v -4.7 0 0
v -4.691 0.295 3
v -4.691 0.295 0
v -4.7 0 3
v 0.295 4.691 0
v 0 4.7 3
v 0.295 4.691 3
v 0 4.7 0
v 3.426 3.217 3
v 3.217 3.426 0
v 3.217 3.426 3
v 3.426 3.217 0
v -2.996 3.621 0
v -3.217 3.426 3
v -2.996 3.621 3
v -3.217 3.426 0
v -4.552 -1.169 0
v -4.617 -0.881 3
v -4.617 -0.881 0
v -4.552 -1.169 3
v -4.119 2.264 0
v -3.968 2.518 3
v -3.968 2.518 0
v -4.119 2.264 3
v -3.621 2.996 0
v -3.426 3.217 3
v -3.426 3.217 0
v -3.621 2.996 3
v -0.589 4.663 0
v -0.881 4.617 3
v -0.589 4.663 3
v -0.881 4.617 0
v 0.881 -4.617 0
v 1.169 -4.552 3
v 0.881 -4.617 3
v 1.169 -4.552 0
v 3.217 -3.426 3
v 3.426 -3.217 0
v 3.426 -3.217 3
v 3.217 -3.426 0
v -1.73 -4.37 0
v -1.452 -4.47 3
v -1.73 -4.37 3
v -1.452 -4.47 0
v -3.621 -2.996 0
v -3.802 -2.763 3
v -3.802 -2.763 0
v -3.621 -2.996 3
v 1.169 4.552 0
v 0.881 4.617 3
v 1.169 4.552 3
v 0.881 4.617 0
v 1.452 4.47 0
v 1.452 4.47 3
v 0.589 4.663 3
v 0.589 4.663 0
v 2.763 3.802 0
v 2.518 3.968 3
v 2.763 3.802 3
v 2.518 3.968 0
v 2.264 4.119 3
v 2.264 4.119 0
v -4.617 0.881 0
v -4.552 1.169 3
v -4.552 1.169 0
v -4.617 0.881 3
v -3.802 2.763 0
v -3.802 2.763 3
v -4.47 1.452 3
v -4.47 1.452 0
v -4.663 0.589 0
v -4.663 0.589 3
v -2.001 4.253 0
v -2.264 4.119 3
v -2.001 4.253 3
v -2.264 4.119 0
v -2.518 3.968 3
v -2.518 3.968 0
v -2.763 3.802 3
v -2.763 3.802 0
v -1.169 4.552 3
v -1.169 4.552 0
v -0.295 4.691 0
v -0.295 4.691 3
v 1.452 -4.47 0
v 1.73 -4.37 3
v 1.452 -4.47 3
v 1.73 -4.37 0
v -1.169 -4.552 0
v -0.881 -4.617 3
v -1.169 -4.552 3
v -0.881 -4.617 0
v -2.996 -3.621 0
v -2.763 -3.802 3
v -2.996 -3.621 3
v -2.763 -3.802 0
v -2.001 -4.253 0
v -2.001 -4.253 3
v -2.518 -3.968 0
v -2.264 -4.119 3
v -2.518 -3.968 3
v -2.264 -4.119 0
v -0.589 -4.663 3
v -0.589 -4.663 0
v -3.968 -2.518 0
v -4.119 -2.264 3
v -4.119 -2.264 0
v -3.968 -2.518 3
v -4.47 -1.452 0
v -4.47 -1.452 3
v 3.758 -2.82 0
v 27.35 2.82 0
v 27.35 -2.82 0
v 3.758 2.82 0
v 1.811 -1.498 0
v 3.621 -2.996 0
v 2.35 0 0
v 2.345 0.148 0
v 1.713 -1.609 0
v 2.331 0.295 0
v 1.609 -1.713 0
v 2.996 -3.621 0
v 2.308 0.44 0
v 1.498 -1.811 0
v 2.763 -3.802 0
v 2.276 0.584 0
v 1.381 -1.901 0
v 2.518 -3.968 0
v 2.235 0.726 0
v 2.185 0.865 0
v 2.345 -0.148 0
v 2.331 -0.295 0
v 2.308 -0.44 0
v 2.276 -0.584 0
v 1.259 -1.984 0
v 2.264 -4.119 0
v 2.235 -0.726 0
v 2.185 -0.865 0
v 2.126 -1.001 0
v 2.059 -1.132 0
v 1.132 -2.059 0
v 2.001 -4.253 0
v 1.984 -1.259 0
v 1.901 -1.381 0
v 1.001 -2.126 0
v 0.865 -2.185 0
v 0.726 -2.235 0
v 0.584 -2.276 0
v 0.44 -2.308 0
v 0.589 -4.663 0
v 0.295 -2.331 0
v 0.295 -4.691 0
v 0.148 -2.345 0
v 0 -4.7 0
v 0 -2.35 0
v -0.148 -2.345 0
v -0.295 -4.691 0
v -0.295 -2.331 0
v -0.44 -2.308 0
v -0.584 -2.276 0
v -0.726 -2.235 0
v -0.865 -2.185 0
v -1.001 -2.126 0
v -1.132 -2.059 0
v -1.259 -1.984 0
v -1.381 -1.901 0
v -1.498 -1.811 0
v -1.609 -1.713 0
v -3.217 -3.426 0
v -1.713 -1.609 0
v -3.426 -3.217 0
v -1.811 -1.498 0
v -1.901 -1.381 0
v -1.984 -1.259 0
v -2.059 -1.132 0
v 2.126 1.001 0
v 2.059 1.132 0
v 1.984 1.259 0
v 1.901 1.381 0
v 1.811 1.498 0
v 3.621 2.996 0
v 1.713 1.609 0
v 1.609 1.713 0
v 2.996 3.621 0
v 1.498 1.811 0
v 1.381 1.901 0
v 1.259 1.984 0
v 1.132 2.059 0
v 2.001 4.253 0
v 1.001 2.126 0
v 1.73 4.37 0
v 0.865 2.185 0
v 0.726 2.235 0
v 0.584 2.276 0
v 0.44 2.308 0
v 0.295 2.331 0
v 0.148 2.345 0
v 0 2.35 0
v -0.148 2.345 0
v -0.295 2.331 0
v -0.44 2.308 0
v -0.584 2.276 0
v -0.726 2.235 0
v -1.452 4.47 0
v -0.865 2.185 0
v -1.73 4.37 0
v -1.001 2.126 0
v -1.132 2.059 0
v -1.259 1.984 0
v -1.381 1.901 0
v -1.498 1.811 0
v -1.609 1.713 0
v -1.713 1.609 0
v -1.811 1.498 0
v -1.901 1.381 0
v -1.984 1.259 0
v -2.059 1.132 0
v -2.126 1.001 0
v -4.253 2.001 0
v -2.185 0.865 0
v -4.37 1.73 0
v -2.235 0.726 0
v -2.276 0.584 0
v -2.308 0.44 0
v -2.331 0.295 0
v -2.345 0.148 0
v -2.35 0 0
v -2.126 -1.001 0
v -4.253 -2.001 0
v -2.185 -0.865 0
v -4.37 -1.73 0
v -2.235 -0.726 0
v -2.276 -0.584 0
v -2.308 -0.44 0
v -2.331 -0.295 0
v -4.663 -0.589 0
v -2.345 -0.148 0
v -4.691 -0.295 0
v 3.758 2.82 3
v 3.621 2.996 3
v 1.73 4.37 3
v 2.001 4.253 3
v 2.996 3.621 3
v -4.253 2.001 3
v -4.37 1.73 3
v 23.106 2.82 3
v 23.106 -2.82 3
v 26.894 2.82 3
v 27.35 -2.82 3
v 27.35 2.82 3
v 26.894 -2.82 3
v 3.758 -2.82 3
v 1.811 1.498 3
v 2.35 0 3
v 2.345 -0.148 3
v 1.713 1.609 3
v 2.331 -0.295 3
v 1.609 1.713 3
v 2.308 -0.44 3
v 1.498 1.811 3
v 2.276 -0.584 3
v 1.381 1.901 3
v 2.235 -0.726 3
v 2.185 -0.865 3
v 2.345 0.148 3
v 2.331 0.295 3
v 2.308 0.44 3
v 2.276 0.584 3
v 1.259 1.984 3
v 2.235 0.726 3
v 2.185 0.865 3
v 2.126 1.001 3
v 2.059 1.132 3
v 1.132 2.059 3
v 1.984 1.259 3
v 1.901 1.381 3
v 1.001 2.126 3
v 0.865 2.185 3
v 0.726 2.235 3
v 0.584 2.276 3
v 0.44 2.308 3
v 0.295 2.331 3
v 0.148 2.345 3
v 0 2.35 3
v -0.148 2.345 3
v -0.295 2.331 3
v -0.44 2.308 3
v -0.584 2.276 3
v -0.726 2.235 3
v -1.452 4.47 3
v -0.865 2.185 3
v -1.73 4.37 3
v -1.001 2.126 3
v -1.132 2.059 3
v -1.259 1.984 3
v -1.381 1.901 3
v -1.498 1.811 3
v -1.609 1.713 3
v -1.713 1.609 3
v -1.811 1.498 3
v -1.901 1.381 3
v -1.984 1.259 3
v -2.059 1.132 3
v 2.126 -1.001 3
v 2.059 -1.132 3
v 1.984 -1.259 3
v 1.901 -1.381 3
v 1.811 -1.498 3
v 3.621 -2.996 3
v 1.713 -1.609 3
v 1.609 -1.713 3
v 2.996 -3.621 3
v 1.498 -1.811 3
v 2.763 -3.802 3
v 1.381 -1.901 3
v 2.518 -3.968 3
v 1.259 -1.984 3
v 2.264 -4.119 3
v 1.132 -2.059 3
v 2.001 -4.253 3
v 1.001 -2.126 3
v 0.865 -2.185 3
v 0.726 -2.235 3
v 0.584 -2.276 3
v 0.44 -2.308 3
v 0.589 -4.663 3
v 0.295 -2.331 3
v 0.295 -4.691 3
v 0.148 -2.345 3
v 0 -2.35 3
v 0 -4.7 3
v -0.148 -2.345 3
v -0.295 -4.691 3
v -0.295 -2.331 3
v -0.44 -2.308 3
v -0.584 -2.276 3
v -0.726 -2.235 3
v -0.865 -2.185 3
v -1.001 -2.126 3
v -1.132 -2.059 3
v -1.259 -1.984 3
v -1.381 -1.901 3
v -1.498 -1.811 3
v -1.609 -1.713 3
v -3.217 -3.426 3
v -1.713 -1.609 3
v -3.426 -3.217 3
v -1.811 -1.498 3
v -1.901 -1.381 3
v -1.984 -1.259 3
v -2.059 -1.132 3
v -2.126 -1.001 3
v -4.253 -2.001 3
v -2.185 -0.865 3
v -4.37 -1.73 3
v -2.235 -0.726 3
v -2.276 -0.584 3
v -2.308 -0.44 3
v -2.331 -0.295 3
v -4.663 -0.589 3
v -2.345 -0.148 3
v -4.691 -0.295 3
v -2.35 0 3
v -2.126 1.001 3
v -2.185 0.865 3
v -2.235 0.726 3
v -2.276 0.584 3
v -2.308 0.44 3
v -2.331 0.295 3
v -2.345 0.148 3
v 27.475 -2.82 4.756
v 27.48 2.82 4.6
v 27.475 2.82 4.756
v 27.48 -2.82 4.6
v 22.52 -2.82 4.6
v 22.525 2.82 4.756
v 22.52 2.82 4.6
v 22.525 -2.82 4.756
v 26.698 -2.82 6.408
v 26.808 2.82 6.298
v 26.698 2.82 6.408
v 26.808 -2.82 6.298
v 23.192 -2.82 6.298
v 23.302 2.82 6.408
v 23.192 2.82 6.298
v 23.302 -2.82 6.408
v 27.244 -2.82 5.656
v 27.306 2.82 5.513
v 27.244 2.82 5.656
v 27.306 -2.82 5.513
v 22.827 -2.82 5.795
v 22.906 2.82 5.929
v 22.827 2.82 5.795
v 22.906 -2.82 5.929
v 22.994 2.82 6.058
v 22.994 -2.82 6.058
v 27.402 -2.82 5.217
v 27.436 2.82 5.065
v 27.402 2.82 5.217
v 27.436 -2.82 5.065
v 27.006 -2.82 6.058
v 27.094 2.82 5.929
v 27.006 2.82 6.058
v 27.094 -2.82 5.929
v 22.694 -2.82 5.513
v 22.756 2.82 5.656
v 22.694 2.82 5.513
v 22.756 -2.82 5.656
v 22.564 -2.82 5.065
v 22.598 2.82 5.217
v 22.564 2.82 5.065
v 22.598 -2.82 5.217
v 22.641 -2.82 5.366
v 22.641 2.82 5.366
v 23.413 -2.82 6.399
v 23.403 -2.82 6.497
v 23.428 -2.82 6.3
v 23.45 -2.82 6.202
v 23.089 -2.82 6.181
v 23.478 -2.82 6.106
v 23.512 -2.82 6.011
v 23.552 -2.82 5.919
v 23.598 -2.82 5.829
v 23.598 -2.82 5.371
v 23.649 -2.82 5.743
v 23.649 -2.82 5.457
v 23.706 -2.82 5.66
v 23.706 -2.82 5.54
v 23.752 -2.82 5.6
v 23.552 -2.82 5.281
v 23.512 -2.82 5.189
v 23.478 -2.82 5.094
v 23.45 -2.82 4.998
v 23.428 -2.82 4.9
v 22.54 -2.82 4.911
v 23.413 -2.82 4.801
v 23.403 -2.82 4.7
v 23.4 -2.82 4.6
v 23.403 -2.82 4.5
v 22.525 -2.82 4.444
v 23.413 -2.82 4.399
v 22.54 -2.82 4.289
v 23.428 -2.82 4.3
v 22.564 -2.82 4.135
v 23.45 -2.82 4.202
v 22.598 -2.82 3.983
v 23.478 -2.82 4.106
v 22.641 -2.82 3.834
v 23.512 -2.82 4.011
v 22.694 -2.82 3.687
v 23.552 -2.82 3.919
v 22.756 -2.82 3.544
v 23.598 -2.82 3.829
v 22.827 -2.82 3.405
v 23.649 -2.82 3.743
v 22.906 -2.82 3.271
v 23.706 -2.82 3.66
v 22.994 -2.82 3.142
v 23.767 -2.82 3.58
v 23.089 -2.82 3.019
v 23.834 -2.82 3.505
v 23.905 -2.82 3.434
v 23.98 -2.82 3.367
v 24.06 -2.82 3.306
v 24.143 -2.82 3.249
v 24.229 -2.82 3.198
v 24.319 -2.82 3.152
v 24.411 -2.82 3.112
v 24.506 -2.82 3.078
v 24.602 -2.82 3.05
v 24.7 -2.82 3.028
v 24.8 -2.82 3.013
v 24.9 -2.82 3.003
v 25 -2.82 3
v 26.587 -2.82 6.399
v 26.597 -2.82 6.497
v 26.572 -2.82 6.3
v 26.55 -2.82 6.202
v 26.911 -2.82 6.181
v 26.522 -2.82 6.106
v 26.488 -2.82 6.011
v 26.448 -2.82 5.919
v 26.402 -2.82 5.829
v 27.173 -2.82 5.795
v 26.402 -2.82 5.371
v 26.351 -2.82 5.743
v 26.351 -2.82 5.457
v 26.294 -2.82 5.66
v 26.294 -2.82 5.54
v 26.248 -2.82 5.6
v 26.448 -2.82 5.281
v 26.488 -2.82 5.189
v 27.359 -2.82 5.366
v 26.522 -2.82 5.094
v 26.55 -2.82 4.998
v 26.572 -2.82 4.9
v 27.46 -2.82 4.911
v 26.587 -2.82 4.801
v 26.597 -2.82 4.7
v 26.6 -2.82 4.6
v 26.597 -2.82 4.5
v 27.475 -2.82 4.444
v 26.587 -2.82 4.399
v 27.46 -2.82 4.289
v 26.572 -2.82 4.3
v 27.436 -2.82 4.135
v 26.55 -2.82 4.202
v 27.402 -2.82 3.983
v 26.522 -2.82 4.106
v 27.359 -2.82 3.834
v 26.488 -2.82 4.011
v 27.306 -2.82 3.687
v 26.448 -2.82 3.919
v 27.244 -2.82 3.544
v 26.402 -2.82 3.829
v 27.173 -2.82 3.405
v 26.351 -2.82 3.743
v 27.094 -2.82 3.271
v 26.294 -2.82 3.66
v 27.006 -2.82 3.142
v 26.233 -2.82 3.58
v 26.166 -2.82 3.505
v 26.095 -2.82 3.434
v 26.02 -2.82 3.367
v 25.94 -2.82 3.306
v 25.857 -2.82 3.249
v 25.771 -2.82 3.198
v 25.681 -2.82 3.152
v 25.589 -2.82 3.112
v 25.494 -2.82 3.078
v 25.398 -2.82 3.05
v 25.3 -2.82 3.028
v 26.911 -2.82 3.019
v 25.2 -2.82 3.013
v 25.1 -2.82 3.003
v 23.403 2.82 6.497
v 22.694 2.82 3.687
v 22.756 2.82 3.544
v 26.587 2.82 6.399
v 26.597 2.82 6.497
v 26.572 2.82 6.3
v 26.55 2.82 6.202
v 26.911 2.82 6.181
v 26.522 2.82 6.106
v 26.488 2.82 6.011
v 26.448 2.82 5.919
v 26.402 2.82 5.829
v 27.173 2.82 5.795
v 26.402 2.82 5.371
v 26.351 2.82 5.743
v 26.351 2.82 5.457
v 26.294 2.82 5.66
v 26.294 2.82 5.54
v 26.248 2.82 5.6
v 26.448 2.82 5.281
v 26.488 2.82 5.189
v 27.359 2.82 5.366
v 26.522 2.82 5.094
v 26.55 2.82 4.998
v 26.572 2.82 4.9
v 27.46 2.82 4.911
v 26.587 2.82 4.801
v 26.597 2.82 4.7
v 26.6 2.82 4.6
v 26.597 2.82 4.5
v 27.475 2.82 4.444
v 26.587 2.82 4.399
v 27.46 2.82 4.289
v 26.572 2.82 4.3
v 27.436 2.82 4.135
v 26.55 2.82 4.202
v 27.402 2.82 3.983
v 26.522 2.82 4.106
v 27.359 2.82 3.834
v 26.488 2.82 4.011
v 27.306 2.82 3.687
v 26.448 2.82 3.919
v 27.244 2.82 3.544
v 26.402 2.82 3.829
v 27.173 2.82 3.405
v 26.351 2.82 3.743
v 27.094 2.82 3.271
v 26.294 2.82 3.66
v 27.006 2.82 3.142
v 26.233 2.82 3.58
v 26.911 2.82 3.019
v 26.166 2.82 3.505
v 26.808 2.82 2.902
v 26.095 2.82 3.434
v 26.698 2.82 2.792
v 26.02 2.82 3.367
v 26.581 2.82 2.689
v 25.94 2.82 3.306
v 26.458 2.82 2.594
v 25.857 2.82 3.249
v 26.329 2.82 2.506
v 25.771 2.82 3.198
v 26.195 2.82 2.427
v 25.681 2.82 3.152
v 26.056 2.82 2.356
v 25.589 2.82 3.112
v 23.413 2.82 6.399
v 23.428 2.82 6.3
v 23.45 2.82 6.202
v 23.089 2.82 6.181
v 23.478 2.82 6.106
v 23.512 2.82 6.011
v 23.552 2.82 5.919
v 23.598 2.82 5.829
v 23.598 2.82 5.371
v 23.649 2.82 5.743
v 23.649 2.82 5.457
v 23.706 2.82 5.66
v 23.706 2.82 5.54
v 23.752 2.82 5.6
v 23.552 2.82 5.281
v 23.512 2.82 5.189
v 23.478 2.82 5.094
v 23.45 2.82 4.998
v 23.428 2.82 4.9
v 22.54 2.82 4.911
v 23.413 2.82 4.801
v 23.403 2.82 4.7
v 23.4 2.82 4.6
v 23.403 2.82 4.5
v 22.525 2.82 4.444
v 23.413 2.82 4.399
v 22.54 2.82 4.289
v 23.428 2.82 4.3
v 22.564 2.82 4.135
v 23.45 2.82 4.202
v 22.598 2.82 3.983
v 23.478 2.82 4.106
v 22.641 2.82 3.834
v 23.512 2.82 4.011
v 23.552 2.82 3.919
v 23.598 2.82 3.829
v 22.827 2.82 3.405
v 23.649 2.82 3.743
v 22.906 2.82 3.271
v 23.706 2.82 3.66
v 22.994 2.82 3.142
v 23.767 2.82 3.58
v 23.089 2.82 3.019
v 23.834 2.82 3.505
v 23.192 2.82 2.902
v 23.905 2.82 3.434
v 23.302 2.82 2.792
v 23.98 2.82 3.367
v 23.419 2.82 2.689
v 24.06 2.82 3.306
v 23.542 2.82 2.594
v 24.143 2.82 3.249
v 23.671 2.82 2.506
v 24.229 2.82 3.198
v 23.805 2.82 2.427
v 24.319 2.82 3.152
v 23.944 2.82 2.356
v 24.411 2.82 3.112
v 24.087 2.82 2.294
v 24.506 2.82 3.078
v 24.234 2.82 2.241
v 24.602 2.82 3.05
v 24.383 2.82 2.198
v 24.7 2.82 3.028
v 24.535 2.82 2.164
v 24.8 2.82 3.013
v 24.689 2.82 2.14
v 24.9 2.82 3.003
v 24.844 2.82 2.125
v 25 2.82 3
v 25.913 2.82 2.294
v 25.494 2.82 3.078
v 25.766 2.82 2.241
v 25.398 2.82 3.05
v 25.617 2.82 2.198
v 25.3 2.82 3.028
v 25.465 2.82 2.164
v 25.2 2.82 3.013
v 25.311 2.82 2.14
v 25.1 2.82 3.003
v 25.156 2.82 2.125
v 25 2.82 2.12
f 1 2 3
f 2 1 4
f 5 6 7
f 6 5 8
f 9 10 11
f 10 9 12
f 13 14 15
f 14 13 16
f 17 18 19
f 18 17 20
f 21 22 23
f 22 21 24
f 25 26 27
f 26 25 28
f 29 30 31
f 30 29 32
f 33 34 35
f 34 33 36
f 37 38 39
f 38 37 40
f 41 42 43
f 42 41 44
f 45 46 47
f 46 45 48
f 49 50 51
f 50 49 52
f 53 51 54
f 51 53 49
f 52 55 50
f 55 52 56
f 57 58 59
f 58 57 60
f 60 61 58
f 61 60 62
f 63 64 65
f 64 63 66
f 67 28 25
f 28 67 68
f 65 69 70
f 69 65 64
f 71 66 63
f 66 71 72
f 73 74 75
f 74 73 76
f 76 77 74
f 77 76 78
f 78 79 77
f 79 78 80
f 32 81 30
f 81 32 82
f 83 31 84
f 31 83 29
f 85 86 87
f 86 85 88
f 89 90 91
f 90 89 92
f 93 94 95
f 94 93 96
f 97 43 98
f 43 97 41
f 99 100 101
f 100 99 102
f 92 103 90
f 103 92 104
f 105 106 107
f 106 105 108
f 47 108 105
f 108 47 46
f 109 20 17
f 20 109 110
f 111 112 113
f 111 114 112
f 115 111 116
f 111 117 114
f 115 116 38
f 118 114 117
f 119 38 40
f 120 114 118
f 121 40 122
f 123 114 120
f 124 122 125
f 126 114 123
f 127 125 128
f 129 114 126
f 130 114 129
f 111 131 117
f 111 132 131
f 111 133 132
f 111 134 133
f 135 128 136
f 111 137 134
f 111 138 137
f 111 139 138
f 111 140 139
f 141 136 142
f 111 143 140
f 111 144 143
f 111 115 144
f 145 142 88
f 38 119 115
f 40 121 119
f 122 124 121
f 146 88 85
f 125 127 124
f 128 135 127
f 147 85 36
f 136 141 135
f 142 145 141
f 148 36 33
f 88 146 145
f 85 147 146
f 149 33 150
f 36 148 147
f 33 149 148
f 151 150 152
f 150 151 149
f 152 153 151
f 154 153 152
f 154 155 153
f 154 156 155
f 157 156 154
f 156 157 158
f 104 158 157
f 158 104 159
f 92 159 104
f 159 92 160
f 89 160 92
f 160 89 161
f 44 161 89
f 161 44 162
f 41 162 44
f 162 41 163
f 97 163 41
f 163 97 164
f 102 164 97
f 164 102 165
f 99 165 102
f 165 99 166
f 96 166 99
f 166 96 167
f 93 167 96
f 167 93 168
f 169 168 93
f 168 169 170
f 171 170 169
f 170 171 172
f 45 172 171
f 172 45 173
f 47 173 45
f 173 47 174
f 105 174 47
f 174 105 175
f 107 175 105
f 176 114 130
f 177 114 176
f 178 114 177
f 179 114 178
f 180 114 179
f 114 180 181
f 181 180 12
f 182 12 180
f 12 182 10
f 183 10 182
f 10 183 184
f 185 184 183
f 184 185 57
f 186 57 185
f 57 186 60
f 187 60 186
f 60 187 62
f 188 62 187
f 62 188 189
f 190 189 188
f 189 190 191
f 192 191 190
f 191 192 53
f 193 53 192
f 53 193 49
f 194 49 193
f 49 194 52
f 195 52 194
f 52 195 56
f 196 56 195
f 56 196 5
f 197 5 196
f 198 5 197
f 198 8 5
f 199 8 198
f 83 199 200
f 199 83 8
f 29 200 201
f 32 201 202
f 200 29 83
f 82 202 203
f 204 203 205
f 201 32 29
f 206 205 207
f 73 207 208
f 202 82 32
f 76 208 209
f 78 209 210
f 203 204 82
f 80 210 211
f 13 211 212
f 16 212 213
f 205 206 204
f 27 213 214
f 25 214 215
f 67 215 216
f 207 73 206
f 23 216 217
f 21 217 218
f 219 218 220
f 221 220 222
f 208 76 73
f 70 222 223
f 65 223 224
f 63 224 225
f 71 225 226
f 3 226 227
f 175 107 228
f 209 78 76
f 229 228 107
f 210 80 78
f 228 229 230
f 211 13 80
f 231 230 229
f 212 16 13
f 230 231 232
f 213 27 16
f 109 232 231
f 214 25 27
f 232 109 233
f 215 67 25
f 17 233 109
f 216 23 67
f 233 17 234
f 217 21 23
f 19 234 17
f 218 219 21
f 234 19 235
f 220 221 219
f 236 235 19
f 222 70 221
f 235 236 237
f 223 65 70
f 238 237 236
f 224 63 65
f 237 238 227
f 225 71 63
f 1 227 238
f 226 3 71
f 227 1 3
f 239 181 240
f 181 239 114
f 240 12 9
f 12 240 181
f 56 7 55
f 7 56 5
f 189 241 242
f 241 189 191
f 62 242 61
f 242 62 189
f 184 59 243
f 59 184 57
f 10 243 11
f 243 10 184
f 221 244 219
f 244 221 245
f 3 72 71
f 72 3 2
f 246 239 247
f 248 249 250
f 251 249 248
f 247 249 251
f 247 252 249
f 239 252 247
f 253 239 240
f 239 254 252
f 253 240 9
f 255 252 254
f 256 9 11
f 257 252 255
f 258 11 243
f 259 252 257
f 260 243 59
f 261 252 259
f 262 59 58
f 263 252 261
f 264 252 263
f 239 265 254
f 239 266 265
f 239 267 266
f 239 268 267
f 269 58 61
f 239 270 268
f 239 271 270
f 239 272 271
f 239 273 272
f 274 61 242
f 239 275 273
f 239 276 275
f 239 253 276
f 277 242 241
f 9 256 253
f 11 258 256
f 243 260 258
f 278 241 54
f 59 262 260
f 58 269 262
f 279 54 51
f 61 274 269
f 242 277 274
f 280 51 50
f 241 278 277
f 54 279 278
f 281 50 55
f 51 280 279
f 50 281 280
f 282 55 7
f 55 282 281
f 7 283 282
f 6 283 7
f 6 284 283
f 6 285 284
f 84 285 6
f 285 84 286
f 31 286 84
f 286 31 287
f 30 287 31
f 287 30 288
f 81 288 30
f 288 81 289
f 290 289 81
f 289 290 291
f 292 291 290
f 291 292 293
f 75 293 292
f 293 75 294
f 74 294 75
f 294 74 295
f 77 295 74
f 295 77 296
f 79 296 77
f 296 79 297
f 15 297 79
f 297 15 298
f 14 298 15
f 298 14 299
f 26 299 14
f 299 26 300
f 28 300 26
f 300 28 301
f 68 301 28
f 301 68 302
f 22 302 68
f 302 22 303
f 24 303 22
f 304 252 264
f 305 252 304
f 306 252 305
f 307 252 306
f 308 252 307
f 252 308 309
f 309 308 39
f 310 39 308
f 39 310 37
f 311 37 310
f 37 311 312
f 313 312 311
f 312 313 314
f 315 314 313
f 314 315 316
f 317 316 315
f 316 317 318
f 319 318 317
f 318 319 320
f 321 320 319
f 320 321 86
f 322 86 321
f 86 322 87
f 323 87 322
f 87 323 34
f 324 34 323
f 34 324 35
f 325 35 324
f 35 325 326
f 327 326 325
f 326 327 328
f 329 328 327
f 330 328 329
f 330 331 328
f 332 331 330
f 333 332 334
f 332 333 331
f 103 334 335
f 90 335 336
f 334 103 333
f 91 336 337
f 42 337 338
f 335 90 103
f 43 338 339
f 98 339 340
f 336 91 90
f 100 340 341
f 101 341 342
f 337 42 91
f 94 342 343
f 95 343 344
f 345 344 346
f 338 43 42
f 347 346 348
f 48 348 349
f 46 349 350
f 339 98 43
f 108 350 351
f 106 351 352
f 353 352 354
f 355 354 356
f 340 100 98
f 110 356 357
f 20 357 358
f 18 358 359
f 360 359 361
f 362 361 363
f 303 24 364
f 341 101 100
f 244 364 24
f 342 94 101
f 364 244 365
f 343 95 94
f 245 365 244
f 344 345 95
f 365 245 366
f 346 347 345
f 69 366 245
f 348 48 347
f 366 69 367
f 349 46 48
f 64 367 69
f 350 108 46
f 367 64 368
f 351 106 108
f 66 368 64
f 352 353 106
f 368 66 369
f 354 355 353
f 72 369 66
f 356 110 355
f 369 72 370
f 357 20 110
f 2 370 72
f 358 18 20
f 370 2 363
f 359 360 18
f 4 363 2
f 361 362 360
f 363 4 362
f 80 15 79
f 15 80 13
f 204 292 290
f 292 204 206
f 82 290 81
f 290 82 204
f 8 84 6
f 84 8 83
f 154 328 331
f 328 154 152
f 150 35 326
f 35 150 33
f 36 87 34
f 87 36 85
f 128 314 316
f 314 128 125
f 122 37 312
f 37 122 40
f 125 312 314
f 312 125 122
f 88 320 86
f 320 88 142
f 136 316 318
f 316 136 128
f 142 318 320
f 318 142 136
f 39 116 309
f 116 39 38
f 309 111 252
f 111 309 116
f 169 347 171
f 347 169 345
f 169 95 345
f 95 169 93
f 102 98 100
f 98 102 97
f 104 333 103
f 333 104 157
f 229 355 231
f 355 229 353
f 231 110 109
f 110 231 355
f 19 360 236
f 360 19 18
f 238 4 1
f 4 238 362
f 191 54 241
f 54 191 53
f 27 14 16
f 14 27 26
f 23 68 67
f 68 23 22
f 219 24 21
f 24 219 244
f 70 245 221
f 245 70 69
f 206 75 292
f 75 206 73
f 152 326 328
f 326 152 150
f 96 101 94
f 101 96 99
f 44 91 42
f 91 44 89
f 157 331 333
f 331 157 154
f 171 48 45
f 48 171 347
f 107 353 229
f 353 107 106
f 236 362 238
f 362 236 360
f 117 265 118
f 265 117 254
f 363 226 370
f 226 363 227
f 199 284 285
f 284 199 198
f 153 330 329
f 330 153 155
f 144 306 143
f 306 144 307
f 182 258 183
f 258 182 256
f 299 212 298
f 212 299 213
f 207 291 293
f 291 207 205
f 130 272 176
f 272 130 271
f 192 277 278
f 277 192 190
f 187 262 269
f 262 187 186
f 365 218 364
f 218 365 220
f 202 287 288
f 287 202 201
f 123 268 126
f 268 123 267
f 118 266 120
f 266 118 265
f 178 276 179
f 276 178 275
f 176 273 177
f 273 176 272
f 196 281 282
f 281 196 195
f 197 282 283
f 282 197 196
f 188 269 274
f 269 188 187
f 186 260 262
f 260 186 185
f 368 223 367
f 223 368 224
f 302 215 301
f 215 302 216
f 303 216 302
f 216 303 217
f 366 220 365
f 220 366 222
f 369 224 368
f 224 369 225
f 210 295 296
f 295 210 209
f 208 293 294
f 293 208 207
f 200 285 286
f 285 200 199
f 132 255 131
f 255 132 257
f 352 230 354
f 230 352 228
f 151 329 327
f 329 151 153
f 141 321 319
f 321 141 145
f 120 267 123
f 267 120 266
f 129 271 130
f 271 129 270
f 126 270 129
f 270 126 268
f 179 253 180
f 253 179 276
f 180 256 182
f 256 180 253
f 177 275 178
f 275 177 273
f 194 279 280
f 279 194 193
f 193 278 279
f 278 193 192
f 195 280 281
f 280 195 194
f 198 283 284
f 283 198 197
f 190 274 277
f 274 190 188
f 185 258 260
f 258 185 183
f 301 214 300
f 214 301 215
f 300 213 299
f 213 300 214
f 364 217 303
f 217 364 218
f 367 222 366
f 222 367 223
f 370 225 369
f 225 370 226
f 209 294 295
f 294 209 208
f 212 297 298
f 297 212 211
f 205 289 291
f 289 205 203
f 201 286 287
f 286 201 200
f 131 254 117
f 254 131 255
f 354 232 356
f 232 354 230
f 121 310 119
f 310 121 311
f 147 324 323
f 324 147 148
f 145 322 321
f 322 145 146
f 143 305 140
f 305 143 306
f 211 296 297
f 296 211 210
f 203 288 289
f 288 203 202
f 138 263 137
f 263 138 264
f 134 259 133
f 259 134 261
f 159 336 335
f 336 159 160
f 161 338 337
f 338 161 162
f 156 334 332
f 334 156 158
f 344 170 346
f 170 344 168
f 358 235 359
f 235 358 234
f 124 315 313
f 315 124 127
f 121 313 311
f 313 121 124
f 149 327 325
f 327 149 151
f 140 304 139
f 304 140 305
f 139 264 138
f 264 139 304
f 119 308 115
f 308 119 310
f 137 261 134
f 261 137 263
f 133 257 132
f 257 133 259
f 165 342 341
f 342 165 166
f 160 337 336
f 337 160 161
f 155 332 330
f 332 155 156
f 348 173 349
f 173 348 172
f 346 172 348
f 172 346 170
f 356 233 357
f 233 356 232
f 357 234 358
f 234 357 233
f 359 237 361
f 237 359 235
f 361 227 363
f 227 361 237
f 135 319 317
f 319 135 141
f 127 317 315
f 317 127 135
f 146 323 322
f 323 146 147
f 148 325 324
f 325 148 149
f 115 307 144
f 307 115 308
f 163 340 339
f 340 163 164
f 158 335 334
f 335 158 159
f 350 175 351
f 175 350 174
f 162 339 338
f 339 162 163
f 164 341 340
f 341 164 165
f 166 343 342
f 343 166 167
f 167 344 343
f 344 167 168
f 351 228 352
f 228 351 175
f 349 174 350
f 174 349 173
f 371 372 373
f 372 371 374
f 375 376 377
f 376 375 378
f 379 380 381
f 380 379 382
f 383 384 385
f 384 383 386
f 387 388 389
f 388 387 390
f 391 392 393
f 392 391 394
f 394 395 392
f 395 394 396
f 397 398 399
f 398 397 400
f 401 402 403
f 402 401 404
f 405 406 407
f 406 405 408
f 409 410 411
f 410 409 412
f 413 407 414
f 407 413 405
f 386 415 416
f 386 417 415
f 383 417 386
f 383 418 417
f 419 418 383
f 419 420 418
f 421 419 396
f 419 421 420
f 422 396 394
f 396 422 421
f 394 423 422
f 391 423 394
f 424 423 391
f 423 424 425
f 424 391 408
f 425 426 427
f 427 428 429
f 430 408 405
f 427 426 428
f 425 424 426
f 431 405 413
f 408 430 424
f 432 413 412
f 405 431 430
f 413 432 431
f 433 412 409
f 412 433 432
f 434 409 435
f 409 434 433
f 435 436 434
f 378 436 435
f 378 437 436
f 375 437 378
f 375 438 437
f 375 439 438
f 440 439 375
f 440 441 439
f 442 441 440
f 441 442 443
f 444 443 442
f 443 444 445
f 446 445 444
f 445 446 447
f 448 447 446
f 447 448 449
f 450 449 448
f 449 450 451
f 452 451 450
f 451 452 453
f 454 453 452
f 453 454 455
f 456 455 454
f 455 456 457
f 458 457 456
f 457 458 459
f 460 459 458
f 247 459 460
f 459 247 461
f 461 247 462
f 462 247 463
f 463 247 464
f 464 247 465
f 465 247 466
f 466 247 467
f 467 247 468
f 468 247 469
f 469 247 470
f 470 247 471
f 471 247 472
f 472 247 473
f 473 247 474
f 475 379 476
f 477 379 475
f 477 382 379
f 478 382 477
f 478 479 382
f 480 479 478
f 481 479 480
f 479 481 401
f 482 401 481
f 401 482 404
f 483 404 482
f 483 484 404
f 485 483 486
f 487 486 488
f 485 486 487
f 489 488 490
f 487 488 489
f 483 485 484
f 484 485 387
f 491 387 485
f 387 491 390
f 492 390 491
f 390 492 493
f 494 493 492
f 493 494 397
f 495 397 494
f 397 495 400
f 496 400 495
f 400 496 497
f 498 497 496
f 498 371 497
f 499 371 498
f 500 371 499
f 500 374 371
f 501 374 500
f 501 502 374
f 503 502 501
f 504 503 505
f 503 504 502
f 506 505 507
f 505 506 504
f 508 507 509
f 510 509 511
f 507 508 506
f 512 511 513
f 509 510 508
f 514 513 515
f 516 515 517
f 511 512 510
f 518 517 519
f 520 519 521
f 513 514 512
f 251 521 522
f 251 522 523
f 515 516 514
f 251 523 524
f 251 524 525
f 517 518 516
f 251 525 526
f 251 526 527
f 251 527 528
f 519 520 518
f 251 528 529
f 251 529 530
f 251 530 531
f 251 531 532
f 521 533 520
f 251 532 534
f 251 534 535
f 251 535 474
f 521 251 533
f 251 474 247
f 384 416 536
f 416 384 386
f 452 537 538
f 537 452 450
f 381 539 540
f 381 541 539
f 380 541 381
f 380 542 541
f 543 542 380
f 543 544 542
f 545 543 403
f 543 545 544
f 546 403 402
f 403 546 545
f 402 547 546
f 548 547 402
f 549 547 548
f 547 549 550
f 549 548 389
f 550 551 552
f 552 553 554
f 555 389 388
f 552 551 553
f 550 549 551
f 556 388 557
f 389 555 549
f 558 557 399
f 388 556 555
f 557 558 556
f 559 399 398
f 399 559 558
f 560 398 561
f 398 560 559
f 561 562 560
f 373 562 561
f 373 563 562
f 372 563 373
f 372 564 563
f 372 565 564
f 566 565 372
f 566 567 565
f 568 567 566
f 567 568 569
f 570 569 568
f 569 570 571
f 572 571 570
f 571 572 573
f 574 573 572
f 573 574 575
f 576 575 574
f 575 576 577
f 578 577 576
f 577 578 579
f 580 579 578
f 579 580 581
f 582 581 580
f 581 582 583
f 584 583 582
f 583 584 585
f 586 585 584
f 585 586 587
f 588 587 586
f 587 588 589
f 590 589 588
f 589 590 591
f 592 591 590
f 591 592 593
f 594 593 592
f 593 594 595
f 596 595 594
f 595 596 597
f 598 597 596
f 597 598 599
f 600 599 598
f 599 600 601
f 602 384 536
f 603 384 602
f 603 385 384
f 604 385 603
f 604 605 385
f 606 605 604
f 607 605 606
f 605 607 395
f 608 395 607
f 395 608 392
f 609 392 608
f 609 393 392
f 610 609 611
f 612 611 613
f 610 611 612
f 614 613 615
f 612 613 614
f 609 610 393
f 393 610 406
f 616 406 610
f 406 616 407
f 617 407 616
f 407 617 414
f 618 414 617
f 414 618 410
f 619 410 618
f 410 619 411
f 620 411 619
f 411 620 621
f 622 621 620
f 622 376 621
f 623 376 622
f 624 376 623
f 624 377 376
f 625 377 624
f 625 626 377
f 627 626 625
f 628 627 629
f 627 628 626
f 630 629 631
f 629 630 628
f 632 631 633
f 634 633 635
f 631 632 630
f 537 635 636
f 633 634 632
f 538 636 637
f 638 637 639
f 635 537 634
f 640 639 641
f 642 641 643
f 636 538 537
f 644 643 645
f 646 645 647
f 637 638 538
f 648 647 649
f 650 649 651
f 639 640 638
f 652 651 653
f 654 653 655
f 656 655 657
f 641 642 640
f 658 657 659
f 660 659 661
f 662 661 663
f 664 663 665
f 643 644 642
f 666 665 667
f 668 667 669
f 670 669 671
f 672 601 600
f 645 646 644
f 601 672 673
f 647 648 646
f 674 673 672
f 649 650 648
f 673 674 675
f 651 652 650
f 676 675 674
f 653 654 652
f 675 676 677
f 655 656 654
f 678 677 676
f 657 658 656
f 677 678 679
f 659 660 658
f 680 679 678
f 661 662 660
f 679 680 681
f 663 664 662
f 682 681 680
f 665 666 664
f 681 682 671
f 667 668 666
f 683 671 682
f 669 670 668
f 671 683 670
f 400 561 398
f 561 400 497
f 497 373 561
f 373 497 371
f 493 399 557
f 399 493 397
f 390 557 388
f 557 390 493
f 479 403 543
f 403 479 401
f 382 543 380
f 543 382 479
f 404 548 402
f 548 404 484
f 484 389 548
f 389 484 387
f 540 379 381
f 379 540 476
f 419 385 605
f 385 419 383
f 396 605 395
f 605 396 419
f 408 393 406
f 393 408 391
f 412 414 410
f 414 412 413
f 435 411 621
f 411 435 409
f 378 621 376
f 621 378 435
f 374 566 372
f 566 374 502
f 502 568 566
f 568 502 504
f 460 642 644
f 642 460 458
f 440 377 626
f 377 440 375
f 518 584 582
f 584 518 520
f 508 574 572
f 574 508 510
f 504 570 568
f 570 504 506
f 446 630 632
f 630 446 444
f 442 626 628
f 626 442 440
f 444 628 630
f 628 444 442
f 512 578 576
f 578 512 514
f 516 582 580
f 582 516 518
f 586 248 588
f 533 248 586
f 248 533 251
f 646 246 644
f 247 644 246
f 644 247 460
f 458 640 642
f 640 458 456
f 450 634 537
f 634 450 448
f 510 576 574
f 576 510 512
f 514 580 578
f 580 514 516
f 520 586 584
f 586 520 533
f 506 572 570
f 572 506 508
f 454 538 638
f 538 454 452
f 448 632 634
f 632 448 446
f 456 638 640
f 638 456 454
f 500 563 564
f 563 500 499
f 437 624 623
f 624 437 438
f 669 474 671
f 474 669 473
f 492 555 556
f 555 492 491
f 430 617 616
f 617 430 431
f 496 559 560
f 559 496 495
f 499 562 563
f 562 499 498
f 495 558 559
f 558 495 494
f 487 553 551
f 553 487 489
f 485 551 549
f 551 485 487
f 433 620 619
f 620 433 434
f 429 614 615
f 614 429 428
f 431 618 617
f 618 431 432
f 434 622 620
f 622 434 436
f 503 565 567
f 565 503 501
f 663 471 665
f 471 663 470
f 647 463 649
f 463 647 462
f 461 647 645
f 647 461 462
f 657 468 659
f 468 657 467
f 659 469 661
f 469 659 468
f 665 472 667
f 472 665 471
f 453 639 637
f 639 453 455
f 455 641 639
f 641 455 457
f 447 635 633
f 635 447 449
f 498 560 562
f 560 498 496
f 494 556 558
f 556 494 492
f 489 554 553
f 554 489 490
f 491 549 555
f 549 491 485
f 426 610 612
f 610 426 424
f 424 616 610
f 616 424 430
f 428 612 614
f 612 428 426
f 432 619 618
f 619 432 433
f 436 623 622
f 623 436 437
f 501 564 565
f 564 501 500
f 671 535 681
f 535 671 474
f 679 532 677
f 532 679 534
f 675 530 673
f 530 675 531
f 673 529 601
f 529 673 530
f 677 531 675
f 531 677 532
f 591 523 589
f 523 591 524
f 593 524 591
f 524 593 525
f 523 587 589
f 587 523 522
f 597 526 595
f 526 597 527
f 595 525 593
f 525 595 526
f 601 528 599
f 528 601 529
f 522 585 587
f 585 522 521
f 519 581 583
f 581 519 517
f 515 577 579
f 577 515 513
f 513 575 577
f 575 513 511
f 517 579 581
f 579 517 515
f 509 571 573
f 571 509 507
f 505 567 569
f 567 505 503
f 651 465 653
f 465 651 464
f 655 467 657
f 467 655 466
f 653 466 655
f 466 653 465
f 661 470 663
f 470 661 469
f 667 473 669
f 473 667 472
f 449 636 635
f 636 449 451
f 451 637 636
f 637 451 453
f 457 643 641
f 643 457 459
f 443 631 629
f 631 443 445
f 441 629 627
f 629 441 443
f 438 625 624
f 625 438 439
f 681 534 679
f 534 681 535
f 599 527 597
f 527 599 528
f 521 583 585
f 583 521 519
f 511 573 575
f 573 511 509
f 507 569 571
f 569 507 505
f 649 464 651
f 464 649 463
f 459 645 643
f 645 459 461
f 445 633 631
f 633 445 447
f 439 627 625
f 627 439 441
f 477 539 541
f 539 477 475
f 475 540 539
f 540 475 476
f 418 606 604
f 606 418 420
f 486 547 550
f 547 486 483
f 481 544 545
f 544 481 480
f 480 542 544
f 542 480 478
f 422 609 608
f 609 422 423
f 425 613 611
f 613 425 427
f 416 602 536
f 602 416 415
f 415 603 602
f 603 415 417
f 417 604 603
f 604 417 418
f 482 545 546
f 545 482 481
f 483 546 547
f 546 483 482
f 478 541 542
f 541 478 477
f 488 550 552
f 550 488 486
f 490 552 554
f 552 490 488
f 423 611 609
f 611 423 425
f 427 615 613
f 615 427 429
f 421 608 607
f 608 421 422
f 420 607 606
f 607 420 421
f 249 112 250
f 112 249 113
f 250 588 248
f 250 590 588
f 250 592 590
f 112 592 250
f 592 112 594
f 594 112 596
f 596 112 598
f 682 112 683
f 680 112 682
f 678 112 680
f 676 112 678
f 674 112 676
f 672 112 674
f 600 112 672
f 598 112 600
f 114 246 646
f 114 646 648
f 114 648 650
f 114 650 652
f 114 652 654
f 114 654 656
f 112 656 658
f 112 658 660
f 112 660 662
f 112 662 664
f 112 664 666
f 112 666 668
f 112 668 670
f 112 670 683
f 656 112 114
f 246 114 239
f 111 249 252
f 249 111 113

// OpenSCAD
// Laser cutter cable management

// configurable settings
// all units in mm
thickness = 3;
screwOD = 4.7;
cableOD = 3.2;
length = 25;
cableGripThicknessMultiplier = 1.55;

module cableManager(){
    union(){
        // part that mounts on the screw
        difference(){
            cylinder(d=screwOD*2,h=thickness,$fn=100);
            translate([0,0,-1]) cylinder(d=screwOD,h=thickness*2,$fn=100);
        }
        translate([screwOD/2,-(screwOD*1.2/2),0]) cube([length,screwOD*1.2,thickness]);
        
        // cable grip
        gripHeight = screwOD*1.2;
        translate([length,gripHeight/2,(thickness+cableOD*1.2/2)-cableOD*0.1]) rotate([90]) difference(){
            cylinder(d=cableOD*cableGripThicknessMultiplier,h=gripHeight,$fn=100);
            translate([0,0,-1]) cylinder(d=cableOD,h=gripHeight*2,$fn=100);
            translate([0,2,-1]) cylinder(d=cableOD,h=gripHeight*2,$fn=100);
        }
    }
}

cableManager();
